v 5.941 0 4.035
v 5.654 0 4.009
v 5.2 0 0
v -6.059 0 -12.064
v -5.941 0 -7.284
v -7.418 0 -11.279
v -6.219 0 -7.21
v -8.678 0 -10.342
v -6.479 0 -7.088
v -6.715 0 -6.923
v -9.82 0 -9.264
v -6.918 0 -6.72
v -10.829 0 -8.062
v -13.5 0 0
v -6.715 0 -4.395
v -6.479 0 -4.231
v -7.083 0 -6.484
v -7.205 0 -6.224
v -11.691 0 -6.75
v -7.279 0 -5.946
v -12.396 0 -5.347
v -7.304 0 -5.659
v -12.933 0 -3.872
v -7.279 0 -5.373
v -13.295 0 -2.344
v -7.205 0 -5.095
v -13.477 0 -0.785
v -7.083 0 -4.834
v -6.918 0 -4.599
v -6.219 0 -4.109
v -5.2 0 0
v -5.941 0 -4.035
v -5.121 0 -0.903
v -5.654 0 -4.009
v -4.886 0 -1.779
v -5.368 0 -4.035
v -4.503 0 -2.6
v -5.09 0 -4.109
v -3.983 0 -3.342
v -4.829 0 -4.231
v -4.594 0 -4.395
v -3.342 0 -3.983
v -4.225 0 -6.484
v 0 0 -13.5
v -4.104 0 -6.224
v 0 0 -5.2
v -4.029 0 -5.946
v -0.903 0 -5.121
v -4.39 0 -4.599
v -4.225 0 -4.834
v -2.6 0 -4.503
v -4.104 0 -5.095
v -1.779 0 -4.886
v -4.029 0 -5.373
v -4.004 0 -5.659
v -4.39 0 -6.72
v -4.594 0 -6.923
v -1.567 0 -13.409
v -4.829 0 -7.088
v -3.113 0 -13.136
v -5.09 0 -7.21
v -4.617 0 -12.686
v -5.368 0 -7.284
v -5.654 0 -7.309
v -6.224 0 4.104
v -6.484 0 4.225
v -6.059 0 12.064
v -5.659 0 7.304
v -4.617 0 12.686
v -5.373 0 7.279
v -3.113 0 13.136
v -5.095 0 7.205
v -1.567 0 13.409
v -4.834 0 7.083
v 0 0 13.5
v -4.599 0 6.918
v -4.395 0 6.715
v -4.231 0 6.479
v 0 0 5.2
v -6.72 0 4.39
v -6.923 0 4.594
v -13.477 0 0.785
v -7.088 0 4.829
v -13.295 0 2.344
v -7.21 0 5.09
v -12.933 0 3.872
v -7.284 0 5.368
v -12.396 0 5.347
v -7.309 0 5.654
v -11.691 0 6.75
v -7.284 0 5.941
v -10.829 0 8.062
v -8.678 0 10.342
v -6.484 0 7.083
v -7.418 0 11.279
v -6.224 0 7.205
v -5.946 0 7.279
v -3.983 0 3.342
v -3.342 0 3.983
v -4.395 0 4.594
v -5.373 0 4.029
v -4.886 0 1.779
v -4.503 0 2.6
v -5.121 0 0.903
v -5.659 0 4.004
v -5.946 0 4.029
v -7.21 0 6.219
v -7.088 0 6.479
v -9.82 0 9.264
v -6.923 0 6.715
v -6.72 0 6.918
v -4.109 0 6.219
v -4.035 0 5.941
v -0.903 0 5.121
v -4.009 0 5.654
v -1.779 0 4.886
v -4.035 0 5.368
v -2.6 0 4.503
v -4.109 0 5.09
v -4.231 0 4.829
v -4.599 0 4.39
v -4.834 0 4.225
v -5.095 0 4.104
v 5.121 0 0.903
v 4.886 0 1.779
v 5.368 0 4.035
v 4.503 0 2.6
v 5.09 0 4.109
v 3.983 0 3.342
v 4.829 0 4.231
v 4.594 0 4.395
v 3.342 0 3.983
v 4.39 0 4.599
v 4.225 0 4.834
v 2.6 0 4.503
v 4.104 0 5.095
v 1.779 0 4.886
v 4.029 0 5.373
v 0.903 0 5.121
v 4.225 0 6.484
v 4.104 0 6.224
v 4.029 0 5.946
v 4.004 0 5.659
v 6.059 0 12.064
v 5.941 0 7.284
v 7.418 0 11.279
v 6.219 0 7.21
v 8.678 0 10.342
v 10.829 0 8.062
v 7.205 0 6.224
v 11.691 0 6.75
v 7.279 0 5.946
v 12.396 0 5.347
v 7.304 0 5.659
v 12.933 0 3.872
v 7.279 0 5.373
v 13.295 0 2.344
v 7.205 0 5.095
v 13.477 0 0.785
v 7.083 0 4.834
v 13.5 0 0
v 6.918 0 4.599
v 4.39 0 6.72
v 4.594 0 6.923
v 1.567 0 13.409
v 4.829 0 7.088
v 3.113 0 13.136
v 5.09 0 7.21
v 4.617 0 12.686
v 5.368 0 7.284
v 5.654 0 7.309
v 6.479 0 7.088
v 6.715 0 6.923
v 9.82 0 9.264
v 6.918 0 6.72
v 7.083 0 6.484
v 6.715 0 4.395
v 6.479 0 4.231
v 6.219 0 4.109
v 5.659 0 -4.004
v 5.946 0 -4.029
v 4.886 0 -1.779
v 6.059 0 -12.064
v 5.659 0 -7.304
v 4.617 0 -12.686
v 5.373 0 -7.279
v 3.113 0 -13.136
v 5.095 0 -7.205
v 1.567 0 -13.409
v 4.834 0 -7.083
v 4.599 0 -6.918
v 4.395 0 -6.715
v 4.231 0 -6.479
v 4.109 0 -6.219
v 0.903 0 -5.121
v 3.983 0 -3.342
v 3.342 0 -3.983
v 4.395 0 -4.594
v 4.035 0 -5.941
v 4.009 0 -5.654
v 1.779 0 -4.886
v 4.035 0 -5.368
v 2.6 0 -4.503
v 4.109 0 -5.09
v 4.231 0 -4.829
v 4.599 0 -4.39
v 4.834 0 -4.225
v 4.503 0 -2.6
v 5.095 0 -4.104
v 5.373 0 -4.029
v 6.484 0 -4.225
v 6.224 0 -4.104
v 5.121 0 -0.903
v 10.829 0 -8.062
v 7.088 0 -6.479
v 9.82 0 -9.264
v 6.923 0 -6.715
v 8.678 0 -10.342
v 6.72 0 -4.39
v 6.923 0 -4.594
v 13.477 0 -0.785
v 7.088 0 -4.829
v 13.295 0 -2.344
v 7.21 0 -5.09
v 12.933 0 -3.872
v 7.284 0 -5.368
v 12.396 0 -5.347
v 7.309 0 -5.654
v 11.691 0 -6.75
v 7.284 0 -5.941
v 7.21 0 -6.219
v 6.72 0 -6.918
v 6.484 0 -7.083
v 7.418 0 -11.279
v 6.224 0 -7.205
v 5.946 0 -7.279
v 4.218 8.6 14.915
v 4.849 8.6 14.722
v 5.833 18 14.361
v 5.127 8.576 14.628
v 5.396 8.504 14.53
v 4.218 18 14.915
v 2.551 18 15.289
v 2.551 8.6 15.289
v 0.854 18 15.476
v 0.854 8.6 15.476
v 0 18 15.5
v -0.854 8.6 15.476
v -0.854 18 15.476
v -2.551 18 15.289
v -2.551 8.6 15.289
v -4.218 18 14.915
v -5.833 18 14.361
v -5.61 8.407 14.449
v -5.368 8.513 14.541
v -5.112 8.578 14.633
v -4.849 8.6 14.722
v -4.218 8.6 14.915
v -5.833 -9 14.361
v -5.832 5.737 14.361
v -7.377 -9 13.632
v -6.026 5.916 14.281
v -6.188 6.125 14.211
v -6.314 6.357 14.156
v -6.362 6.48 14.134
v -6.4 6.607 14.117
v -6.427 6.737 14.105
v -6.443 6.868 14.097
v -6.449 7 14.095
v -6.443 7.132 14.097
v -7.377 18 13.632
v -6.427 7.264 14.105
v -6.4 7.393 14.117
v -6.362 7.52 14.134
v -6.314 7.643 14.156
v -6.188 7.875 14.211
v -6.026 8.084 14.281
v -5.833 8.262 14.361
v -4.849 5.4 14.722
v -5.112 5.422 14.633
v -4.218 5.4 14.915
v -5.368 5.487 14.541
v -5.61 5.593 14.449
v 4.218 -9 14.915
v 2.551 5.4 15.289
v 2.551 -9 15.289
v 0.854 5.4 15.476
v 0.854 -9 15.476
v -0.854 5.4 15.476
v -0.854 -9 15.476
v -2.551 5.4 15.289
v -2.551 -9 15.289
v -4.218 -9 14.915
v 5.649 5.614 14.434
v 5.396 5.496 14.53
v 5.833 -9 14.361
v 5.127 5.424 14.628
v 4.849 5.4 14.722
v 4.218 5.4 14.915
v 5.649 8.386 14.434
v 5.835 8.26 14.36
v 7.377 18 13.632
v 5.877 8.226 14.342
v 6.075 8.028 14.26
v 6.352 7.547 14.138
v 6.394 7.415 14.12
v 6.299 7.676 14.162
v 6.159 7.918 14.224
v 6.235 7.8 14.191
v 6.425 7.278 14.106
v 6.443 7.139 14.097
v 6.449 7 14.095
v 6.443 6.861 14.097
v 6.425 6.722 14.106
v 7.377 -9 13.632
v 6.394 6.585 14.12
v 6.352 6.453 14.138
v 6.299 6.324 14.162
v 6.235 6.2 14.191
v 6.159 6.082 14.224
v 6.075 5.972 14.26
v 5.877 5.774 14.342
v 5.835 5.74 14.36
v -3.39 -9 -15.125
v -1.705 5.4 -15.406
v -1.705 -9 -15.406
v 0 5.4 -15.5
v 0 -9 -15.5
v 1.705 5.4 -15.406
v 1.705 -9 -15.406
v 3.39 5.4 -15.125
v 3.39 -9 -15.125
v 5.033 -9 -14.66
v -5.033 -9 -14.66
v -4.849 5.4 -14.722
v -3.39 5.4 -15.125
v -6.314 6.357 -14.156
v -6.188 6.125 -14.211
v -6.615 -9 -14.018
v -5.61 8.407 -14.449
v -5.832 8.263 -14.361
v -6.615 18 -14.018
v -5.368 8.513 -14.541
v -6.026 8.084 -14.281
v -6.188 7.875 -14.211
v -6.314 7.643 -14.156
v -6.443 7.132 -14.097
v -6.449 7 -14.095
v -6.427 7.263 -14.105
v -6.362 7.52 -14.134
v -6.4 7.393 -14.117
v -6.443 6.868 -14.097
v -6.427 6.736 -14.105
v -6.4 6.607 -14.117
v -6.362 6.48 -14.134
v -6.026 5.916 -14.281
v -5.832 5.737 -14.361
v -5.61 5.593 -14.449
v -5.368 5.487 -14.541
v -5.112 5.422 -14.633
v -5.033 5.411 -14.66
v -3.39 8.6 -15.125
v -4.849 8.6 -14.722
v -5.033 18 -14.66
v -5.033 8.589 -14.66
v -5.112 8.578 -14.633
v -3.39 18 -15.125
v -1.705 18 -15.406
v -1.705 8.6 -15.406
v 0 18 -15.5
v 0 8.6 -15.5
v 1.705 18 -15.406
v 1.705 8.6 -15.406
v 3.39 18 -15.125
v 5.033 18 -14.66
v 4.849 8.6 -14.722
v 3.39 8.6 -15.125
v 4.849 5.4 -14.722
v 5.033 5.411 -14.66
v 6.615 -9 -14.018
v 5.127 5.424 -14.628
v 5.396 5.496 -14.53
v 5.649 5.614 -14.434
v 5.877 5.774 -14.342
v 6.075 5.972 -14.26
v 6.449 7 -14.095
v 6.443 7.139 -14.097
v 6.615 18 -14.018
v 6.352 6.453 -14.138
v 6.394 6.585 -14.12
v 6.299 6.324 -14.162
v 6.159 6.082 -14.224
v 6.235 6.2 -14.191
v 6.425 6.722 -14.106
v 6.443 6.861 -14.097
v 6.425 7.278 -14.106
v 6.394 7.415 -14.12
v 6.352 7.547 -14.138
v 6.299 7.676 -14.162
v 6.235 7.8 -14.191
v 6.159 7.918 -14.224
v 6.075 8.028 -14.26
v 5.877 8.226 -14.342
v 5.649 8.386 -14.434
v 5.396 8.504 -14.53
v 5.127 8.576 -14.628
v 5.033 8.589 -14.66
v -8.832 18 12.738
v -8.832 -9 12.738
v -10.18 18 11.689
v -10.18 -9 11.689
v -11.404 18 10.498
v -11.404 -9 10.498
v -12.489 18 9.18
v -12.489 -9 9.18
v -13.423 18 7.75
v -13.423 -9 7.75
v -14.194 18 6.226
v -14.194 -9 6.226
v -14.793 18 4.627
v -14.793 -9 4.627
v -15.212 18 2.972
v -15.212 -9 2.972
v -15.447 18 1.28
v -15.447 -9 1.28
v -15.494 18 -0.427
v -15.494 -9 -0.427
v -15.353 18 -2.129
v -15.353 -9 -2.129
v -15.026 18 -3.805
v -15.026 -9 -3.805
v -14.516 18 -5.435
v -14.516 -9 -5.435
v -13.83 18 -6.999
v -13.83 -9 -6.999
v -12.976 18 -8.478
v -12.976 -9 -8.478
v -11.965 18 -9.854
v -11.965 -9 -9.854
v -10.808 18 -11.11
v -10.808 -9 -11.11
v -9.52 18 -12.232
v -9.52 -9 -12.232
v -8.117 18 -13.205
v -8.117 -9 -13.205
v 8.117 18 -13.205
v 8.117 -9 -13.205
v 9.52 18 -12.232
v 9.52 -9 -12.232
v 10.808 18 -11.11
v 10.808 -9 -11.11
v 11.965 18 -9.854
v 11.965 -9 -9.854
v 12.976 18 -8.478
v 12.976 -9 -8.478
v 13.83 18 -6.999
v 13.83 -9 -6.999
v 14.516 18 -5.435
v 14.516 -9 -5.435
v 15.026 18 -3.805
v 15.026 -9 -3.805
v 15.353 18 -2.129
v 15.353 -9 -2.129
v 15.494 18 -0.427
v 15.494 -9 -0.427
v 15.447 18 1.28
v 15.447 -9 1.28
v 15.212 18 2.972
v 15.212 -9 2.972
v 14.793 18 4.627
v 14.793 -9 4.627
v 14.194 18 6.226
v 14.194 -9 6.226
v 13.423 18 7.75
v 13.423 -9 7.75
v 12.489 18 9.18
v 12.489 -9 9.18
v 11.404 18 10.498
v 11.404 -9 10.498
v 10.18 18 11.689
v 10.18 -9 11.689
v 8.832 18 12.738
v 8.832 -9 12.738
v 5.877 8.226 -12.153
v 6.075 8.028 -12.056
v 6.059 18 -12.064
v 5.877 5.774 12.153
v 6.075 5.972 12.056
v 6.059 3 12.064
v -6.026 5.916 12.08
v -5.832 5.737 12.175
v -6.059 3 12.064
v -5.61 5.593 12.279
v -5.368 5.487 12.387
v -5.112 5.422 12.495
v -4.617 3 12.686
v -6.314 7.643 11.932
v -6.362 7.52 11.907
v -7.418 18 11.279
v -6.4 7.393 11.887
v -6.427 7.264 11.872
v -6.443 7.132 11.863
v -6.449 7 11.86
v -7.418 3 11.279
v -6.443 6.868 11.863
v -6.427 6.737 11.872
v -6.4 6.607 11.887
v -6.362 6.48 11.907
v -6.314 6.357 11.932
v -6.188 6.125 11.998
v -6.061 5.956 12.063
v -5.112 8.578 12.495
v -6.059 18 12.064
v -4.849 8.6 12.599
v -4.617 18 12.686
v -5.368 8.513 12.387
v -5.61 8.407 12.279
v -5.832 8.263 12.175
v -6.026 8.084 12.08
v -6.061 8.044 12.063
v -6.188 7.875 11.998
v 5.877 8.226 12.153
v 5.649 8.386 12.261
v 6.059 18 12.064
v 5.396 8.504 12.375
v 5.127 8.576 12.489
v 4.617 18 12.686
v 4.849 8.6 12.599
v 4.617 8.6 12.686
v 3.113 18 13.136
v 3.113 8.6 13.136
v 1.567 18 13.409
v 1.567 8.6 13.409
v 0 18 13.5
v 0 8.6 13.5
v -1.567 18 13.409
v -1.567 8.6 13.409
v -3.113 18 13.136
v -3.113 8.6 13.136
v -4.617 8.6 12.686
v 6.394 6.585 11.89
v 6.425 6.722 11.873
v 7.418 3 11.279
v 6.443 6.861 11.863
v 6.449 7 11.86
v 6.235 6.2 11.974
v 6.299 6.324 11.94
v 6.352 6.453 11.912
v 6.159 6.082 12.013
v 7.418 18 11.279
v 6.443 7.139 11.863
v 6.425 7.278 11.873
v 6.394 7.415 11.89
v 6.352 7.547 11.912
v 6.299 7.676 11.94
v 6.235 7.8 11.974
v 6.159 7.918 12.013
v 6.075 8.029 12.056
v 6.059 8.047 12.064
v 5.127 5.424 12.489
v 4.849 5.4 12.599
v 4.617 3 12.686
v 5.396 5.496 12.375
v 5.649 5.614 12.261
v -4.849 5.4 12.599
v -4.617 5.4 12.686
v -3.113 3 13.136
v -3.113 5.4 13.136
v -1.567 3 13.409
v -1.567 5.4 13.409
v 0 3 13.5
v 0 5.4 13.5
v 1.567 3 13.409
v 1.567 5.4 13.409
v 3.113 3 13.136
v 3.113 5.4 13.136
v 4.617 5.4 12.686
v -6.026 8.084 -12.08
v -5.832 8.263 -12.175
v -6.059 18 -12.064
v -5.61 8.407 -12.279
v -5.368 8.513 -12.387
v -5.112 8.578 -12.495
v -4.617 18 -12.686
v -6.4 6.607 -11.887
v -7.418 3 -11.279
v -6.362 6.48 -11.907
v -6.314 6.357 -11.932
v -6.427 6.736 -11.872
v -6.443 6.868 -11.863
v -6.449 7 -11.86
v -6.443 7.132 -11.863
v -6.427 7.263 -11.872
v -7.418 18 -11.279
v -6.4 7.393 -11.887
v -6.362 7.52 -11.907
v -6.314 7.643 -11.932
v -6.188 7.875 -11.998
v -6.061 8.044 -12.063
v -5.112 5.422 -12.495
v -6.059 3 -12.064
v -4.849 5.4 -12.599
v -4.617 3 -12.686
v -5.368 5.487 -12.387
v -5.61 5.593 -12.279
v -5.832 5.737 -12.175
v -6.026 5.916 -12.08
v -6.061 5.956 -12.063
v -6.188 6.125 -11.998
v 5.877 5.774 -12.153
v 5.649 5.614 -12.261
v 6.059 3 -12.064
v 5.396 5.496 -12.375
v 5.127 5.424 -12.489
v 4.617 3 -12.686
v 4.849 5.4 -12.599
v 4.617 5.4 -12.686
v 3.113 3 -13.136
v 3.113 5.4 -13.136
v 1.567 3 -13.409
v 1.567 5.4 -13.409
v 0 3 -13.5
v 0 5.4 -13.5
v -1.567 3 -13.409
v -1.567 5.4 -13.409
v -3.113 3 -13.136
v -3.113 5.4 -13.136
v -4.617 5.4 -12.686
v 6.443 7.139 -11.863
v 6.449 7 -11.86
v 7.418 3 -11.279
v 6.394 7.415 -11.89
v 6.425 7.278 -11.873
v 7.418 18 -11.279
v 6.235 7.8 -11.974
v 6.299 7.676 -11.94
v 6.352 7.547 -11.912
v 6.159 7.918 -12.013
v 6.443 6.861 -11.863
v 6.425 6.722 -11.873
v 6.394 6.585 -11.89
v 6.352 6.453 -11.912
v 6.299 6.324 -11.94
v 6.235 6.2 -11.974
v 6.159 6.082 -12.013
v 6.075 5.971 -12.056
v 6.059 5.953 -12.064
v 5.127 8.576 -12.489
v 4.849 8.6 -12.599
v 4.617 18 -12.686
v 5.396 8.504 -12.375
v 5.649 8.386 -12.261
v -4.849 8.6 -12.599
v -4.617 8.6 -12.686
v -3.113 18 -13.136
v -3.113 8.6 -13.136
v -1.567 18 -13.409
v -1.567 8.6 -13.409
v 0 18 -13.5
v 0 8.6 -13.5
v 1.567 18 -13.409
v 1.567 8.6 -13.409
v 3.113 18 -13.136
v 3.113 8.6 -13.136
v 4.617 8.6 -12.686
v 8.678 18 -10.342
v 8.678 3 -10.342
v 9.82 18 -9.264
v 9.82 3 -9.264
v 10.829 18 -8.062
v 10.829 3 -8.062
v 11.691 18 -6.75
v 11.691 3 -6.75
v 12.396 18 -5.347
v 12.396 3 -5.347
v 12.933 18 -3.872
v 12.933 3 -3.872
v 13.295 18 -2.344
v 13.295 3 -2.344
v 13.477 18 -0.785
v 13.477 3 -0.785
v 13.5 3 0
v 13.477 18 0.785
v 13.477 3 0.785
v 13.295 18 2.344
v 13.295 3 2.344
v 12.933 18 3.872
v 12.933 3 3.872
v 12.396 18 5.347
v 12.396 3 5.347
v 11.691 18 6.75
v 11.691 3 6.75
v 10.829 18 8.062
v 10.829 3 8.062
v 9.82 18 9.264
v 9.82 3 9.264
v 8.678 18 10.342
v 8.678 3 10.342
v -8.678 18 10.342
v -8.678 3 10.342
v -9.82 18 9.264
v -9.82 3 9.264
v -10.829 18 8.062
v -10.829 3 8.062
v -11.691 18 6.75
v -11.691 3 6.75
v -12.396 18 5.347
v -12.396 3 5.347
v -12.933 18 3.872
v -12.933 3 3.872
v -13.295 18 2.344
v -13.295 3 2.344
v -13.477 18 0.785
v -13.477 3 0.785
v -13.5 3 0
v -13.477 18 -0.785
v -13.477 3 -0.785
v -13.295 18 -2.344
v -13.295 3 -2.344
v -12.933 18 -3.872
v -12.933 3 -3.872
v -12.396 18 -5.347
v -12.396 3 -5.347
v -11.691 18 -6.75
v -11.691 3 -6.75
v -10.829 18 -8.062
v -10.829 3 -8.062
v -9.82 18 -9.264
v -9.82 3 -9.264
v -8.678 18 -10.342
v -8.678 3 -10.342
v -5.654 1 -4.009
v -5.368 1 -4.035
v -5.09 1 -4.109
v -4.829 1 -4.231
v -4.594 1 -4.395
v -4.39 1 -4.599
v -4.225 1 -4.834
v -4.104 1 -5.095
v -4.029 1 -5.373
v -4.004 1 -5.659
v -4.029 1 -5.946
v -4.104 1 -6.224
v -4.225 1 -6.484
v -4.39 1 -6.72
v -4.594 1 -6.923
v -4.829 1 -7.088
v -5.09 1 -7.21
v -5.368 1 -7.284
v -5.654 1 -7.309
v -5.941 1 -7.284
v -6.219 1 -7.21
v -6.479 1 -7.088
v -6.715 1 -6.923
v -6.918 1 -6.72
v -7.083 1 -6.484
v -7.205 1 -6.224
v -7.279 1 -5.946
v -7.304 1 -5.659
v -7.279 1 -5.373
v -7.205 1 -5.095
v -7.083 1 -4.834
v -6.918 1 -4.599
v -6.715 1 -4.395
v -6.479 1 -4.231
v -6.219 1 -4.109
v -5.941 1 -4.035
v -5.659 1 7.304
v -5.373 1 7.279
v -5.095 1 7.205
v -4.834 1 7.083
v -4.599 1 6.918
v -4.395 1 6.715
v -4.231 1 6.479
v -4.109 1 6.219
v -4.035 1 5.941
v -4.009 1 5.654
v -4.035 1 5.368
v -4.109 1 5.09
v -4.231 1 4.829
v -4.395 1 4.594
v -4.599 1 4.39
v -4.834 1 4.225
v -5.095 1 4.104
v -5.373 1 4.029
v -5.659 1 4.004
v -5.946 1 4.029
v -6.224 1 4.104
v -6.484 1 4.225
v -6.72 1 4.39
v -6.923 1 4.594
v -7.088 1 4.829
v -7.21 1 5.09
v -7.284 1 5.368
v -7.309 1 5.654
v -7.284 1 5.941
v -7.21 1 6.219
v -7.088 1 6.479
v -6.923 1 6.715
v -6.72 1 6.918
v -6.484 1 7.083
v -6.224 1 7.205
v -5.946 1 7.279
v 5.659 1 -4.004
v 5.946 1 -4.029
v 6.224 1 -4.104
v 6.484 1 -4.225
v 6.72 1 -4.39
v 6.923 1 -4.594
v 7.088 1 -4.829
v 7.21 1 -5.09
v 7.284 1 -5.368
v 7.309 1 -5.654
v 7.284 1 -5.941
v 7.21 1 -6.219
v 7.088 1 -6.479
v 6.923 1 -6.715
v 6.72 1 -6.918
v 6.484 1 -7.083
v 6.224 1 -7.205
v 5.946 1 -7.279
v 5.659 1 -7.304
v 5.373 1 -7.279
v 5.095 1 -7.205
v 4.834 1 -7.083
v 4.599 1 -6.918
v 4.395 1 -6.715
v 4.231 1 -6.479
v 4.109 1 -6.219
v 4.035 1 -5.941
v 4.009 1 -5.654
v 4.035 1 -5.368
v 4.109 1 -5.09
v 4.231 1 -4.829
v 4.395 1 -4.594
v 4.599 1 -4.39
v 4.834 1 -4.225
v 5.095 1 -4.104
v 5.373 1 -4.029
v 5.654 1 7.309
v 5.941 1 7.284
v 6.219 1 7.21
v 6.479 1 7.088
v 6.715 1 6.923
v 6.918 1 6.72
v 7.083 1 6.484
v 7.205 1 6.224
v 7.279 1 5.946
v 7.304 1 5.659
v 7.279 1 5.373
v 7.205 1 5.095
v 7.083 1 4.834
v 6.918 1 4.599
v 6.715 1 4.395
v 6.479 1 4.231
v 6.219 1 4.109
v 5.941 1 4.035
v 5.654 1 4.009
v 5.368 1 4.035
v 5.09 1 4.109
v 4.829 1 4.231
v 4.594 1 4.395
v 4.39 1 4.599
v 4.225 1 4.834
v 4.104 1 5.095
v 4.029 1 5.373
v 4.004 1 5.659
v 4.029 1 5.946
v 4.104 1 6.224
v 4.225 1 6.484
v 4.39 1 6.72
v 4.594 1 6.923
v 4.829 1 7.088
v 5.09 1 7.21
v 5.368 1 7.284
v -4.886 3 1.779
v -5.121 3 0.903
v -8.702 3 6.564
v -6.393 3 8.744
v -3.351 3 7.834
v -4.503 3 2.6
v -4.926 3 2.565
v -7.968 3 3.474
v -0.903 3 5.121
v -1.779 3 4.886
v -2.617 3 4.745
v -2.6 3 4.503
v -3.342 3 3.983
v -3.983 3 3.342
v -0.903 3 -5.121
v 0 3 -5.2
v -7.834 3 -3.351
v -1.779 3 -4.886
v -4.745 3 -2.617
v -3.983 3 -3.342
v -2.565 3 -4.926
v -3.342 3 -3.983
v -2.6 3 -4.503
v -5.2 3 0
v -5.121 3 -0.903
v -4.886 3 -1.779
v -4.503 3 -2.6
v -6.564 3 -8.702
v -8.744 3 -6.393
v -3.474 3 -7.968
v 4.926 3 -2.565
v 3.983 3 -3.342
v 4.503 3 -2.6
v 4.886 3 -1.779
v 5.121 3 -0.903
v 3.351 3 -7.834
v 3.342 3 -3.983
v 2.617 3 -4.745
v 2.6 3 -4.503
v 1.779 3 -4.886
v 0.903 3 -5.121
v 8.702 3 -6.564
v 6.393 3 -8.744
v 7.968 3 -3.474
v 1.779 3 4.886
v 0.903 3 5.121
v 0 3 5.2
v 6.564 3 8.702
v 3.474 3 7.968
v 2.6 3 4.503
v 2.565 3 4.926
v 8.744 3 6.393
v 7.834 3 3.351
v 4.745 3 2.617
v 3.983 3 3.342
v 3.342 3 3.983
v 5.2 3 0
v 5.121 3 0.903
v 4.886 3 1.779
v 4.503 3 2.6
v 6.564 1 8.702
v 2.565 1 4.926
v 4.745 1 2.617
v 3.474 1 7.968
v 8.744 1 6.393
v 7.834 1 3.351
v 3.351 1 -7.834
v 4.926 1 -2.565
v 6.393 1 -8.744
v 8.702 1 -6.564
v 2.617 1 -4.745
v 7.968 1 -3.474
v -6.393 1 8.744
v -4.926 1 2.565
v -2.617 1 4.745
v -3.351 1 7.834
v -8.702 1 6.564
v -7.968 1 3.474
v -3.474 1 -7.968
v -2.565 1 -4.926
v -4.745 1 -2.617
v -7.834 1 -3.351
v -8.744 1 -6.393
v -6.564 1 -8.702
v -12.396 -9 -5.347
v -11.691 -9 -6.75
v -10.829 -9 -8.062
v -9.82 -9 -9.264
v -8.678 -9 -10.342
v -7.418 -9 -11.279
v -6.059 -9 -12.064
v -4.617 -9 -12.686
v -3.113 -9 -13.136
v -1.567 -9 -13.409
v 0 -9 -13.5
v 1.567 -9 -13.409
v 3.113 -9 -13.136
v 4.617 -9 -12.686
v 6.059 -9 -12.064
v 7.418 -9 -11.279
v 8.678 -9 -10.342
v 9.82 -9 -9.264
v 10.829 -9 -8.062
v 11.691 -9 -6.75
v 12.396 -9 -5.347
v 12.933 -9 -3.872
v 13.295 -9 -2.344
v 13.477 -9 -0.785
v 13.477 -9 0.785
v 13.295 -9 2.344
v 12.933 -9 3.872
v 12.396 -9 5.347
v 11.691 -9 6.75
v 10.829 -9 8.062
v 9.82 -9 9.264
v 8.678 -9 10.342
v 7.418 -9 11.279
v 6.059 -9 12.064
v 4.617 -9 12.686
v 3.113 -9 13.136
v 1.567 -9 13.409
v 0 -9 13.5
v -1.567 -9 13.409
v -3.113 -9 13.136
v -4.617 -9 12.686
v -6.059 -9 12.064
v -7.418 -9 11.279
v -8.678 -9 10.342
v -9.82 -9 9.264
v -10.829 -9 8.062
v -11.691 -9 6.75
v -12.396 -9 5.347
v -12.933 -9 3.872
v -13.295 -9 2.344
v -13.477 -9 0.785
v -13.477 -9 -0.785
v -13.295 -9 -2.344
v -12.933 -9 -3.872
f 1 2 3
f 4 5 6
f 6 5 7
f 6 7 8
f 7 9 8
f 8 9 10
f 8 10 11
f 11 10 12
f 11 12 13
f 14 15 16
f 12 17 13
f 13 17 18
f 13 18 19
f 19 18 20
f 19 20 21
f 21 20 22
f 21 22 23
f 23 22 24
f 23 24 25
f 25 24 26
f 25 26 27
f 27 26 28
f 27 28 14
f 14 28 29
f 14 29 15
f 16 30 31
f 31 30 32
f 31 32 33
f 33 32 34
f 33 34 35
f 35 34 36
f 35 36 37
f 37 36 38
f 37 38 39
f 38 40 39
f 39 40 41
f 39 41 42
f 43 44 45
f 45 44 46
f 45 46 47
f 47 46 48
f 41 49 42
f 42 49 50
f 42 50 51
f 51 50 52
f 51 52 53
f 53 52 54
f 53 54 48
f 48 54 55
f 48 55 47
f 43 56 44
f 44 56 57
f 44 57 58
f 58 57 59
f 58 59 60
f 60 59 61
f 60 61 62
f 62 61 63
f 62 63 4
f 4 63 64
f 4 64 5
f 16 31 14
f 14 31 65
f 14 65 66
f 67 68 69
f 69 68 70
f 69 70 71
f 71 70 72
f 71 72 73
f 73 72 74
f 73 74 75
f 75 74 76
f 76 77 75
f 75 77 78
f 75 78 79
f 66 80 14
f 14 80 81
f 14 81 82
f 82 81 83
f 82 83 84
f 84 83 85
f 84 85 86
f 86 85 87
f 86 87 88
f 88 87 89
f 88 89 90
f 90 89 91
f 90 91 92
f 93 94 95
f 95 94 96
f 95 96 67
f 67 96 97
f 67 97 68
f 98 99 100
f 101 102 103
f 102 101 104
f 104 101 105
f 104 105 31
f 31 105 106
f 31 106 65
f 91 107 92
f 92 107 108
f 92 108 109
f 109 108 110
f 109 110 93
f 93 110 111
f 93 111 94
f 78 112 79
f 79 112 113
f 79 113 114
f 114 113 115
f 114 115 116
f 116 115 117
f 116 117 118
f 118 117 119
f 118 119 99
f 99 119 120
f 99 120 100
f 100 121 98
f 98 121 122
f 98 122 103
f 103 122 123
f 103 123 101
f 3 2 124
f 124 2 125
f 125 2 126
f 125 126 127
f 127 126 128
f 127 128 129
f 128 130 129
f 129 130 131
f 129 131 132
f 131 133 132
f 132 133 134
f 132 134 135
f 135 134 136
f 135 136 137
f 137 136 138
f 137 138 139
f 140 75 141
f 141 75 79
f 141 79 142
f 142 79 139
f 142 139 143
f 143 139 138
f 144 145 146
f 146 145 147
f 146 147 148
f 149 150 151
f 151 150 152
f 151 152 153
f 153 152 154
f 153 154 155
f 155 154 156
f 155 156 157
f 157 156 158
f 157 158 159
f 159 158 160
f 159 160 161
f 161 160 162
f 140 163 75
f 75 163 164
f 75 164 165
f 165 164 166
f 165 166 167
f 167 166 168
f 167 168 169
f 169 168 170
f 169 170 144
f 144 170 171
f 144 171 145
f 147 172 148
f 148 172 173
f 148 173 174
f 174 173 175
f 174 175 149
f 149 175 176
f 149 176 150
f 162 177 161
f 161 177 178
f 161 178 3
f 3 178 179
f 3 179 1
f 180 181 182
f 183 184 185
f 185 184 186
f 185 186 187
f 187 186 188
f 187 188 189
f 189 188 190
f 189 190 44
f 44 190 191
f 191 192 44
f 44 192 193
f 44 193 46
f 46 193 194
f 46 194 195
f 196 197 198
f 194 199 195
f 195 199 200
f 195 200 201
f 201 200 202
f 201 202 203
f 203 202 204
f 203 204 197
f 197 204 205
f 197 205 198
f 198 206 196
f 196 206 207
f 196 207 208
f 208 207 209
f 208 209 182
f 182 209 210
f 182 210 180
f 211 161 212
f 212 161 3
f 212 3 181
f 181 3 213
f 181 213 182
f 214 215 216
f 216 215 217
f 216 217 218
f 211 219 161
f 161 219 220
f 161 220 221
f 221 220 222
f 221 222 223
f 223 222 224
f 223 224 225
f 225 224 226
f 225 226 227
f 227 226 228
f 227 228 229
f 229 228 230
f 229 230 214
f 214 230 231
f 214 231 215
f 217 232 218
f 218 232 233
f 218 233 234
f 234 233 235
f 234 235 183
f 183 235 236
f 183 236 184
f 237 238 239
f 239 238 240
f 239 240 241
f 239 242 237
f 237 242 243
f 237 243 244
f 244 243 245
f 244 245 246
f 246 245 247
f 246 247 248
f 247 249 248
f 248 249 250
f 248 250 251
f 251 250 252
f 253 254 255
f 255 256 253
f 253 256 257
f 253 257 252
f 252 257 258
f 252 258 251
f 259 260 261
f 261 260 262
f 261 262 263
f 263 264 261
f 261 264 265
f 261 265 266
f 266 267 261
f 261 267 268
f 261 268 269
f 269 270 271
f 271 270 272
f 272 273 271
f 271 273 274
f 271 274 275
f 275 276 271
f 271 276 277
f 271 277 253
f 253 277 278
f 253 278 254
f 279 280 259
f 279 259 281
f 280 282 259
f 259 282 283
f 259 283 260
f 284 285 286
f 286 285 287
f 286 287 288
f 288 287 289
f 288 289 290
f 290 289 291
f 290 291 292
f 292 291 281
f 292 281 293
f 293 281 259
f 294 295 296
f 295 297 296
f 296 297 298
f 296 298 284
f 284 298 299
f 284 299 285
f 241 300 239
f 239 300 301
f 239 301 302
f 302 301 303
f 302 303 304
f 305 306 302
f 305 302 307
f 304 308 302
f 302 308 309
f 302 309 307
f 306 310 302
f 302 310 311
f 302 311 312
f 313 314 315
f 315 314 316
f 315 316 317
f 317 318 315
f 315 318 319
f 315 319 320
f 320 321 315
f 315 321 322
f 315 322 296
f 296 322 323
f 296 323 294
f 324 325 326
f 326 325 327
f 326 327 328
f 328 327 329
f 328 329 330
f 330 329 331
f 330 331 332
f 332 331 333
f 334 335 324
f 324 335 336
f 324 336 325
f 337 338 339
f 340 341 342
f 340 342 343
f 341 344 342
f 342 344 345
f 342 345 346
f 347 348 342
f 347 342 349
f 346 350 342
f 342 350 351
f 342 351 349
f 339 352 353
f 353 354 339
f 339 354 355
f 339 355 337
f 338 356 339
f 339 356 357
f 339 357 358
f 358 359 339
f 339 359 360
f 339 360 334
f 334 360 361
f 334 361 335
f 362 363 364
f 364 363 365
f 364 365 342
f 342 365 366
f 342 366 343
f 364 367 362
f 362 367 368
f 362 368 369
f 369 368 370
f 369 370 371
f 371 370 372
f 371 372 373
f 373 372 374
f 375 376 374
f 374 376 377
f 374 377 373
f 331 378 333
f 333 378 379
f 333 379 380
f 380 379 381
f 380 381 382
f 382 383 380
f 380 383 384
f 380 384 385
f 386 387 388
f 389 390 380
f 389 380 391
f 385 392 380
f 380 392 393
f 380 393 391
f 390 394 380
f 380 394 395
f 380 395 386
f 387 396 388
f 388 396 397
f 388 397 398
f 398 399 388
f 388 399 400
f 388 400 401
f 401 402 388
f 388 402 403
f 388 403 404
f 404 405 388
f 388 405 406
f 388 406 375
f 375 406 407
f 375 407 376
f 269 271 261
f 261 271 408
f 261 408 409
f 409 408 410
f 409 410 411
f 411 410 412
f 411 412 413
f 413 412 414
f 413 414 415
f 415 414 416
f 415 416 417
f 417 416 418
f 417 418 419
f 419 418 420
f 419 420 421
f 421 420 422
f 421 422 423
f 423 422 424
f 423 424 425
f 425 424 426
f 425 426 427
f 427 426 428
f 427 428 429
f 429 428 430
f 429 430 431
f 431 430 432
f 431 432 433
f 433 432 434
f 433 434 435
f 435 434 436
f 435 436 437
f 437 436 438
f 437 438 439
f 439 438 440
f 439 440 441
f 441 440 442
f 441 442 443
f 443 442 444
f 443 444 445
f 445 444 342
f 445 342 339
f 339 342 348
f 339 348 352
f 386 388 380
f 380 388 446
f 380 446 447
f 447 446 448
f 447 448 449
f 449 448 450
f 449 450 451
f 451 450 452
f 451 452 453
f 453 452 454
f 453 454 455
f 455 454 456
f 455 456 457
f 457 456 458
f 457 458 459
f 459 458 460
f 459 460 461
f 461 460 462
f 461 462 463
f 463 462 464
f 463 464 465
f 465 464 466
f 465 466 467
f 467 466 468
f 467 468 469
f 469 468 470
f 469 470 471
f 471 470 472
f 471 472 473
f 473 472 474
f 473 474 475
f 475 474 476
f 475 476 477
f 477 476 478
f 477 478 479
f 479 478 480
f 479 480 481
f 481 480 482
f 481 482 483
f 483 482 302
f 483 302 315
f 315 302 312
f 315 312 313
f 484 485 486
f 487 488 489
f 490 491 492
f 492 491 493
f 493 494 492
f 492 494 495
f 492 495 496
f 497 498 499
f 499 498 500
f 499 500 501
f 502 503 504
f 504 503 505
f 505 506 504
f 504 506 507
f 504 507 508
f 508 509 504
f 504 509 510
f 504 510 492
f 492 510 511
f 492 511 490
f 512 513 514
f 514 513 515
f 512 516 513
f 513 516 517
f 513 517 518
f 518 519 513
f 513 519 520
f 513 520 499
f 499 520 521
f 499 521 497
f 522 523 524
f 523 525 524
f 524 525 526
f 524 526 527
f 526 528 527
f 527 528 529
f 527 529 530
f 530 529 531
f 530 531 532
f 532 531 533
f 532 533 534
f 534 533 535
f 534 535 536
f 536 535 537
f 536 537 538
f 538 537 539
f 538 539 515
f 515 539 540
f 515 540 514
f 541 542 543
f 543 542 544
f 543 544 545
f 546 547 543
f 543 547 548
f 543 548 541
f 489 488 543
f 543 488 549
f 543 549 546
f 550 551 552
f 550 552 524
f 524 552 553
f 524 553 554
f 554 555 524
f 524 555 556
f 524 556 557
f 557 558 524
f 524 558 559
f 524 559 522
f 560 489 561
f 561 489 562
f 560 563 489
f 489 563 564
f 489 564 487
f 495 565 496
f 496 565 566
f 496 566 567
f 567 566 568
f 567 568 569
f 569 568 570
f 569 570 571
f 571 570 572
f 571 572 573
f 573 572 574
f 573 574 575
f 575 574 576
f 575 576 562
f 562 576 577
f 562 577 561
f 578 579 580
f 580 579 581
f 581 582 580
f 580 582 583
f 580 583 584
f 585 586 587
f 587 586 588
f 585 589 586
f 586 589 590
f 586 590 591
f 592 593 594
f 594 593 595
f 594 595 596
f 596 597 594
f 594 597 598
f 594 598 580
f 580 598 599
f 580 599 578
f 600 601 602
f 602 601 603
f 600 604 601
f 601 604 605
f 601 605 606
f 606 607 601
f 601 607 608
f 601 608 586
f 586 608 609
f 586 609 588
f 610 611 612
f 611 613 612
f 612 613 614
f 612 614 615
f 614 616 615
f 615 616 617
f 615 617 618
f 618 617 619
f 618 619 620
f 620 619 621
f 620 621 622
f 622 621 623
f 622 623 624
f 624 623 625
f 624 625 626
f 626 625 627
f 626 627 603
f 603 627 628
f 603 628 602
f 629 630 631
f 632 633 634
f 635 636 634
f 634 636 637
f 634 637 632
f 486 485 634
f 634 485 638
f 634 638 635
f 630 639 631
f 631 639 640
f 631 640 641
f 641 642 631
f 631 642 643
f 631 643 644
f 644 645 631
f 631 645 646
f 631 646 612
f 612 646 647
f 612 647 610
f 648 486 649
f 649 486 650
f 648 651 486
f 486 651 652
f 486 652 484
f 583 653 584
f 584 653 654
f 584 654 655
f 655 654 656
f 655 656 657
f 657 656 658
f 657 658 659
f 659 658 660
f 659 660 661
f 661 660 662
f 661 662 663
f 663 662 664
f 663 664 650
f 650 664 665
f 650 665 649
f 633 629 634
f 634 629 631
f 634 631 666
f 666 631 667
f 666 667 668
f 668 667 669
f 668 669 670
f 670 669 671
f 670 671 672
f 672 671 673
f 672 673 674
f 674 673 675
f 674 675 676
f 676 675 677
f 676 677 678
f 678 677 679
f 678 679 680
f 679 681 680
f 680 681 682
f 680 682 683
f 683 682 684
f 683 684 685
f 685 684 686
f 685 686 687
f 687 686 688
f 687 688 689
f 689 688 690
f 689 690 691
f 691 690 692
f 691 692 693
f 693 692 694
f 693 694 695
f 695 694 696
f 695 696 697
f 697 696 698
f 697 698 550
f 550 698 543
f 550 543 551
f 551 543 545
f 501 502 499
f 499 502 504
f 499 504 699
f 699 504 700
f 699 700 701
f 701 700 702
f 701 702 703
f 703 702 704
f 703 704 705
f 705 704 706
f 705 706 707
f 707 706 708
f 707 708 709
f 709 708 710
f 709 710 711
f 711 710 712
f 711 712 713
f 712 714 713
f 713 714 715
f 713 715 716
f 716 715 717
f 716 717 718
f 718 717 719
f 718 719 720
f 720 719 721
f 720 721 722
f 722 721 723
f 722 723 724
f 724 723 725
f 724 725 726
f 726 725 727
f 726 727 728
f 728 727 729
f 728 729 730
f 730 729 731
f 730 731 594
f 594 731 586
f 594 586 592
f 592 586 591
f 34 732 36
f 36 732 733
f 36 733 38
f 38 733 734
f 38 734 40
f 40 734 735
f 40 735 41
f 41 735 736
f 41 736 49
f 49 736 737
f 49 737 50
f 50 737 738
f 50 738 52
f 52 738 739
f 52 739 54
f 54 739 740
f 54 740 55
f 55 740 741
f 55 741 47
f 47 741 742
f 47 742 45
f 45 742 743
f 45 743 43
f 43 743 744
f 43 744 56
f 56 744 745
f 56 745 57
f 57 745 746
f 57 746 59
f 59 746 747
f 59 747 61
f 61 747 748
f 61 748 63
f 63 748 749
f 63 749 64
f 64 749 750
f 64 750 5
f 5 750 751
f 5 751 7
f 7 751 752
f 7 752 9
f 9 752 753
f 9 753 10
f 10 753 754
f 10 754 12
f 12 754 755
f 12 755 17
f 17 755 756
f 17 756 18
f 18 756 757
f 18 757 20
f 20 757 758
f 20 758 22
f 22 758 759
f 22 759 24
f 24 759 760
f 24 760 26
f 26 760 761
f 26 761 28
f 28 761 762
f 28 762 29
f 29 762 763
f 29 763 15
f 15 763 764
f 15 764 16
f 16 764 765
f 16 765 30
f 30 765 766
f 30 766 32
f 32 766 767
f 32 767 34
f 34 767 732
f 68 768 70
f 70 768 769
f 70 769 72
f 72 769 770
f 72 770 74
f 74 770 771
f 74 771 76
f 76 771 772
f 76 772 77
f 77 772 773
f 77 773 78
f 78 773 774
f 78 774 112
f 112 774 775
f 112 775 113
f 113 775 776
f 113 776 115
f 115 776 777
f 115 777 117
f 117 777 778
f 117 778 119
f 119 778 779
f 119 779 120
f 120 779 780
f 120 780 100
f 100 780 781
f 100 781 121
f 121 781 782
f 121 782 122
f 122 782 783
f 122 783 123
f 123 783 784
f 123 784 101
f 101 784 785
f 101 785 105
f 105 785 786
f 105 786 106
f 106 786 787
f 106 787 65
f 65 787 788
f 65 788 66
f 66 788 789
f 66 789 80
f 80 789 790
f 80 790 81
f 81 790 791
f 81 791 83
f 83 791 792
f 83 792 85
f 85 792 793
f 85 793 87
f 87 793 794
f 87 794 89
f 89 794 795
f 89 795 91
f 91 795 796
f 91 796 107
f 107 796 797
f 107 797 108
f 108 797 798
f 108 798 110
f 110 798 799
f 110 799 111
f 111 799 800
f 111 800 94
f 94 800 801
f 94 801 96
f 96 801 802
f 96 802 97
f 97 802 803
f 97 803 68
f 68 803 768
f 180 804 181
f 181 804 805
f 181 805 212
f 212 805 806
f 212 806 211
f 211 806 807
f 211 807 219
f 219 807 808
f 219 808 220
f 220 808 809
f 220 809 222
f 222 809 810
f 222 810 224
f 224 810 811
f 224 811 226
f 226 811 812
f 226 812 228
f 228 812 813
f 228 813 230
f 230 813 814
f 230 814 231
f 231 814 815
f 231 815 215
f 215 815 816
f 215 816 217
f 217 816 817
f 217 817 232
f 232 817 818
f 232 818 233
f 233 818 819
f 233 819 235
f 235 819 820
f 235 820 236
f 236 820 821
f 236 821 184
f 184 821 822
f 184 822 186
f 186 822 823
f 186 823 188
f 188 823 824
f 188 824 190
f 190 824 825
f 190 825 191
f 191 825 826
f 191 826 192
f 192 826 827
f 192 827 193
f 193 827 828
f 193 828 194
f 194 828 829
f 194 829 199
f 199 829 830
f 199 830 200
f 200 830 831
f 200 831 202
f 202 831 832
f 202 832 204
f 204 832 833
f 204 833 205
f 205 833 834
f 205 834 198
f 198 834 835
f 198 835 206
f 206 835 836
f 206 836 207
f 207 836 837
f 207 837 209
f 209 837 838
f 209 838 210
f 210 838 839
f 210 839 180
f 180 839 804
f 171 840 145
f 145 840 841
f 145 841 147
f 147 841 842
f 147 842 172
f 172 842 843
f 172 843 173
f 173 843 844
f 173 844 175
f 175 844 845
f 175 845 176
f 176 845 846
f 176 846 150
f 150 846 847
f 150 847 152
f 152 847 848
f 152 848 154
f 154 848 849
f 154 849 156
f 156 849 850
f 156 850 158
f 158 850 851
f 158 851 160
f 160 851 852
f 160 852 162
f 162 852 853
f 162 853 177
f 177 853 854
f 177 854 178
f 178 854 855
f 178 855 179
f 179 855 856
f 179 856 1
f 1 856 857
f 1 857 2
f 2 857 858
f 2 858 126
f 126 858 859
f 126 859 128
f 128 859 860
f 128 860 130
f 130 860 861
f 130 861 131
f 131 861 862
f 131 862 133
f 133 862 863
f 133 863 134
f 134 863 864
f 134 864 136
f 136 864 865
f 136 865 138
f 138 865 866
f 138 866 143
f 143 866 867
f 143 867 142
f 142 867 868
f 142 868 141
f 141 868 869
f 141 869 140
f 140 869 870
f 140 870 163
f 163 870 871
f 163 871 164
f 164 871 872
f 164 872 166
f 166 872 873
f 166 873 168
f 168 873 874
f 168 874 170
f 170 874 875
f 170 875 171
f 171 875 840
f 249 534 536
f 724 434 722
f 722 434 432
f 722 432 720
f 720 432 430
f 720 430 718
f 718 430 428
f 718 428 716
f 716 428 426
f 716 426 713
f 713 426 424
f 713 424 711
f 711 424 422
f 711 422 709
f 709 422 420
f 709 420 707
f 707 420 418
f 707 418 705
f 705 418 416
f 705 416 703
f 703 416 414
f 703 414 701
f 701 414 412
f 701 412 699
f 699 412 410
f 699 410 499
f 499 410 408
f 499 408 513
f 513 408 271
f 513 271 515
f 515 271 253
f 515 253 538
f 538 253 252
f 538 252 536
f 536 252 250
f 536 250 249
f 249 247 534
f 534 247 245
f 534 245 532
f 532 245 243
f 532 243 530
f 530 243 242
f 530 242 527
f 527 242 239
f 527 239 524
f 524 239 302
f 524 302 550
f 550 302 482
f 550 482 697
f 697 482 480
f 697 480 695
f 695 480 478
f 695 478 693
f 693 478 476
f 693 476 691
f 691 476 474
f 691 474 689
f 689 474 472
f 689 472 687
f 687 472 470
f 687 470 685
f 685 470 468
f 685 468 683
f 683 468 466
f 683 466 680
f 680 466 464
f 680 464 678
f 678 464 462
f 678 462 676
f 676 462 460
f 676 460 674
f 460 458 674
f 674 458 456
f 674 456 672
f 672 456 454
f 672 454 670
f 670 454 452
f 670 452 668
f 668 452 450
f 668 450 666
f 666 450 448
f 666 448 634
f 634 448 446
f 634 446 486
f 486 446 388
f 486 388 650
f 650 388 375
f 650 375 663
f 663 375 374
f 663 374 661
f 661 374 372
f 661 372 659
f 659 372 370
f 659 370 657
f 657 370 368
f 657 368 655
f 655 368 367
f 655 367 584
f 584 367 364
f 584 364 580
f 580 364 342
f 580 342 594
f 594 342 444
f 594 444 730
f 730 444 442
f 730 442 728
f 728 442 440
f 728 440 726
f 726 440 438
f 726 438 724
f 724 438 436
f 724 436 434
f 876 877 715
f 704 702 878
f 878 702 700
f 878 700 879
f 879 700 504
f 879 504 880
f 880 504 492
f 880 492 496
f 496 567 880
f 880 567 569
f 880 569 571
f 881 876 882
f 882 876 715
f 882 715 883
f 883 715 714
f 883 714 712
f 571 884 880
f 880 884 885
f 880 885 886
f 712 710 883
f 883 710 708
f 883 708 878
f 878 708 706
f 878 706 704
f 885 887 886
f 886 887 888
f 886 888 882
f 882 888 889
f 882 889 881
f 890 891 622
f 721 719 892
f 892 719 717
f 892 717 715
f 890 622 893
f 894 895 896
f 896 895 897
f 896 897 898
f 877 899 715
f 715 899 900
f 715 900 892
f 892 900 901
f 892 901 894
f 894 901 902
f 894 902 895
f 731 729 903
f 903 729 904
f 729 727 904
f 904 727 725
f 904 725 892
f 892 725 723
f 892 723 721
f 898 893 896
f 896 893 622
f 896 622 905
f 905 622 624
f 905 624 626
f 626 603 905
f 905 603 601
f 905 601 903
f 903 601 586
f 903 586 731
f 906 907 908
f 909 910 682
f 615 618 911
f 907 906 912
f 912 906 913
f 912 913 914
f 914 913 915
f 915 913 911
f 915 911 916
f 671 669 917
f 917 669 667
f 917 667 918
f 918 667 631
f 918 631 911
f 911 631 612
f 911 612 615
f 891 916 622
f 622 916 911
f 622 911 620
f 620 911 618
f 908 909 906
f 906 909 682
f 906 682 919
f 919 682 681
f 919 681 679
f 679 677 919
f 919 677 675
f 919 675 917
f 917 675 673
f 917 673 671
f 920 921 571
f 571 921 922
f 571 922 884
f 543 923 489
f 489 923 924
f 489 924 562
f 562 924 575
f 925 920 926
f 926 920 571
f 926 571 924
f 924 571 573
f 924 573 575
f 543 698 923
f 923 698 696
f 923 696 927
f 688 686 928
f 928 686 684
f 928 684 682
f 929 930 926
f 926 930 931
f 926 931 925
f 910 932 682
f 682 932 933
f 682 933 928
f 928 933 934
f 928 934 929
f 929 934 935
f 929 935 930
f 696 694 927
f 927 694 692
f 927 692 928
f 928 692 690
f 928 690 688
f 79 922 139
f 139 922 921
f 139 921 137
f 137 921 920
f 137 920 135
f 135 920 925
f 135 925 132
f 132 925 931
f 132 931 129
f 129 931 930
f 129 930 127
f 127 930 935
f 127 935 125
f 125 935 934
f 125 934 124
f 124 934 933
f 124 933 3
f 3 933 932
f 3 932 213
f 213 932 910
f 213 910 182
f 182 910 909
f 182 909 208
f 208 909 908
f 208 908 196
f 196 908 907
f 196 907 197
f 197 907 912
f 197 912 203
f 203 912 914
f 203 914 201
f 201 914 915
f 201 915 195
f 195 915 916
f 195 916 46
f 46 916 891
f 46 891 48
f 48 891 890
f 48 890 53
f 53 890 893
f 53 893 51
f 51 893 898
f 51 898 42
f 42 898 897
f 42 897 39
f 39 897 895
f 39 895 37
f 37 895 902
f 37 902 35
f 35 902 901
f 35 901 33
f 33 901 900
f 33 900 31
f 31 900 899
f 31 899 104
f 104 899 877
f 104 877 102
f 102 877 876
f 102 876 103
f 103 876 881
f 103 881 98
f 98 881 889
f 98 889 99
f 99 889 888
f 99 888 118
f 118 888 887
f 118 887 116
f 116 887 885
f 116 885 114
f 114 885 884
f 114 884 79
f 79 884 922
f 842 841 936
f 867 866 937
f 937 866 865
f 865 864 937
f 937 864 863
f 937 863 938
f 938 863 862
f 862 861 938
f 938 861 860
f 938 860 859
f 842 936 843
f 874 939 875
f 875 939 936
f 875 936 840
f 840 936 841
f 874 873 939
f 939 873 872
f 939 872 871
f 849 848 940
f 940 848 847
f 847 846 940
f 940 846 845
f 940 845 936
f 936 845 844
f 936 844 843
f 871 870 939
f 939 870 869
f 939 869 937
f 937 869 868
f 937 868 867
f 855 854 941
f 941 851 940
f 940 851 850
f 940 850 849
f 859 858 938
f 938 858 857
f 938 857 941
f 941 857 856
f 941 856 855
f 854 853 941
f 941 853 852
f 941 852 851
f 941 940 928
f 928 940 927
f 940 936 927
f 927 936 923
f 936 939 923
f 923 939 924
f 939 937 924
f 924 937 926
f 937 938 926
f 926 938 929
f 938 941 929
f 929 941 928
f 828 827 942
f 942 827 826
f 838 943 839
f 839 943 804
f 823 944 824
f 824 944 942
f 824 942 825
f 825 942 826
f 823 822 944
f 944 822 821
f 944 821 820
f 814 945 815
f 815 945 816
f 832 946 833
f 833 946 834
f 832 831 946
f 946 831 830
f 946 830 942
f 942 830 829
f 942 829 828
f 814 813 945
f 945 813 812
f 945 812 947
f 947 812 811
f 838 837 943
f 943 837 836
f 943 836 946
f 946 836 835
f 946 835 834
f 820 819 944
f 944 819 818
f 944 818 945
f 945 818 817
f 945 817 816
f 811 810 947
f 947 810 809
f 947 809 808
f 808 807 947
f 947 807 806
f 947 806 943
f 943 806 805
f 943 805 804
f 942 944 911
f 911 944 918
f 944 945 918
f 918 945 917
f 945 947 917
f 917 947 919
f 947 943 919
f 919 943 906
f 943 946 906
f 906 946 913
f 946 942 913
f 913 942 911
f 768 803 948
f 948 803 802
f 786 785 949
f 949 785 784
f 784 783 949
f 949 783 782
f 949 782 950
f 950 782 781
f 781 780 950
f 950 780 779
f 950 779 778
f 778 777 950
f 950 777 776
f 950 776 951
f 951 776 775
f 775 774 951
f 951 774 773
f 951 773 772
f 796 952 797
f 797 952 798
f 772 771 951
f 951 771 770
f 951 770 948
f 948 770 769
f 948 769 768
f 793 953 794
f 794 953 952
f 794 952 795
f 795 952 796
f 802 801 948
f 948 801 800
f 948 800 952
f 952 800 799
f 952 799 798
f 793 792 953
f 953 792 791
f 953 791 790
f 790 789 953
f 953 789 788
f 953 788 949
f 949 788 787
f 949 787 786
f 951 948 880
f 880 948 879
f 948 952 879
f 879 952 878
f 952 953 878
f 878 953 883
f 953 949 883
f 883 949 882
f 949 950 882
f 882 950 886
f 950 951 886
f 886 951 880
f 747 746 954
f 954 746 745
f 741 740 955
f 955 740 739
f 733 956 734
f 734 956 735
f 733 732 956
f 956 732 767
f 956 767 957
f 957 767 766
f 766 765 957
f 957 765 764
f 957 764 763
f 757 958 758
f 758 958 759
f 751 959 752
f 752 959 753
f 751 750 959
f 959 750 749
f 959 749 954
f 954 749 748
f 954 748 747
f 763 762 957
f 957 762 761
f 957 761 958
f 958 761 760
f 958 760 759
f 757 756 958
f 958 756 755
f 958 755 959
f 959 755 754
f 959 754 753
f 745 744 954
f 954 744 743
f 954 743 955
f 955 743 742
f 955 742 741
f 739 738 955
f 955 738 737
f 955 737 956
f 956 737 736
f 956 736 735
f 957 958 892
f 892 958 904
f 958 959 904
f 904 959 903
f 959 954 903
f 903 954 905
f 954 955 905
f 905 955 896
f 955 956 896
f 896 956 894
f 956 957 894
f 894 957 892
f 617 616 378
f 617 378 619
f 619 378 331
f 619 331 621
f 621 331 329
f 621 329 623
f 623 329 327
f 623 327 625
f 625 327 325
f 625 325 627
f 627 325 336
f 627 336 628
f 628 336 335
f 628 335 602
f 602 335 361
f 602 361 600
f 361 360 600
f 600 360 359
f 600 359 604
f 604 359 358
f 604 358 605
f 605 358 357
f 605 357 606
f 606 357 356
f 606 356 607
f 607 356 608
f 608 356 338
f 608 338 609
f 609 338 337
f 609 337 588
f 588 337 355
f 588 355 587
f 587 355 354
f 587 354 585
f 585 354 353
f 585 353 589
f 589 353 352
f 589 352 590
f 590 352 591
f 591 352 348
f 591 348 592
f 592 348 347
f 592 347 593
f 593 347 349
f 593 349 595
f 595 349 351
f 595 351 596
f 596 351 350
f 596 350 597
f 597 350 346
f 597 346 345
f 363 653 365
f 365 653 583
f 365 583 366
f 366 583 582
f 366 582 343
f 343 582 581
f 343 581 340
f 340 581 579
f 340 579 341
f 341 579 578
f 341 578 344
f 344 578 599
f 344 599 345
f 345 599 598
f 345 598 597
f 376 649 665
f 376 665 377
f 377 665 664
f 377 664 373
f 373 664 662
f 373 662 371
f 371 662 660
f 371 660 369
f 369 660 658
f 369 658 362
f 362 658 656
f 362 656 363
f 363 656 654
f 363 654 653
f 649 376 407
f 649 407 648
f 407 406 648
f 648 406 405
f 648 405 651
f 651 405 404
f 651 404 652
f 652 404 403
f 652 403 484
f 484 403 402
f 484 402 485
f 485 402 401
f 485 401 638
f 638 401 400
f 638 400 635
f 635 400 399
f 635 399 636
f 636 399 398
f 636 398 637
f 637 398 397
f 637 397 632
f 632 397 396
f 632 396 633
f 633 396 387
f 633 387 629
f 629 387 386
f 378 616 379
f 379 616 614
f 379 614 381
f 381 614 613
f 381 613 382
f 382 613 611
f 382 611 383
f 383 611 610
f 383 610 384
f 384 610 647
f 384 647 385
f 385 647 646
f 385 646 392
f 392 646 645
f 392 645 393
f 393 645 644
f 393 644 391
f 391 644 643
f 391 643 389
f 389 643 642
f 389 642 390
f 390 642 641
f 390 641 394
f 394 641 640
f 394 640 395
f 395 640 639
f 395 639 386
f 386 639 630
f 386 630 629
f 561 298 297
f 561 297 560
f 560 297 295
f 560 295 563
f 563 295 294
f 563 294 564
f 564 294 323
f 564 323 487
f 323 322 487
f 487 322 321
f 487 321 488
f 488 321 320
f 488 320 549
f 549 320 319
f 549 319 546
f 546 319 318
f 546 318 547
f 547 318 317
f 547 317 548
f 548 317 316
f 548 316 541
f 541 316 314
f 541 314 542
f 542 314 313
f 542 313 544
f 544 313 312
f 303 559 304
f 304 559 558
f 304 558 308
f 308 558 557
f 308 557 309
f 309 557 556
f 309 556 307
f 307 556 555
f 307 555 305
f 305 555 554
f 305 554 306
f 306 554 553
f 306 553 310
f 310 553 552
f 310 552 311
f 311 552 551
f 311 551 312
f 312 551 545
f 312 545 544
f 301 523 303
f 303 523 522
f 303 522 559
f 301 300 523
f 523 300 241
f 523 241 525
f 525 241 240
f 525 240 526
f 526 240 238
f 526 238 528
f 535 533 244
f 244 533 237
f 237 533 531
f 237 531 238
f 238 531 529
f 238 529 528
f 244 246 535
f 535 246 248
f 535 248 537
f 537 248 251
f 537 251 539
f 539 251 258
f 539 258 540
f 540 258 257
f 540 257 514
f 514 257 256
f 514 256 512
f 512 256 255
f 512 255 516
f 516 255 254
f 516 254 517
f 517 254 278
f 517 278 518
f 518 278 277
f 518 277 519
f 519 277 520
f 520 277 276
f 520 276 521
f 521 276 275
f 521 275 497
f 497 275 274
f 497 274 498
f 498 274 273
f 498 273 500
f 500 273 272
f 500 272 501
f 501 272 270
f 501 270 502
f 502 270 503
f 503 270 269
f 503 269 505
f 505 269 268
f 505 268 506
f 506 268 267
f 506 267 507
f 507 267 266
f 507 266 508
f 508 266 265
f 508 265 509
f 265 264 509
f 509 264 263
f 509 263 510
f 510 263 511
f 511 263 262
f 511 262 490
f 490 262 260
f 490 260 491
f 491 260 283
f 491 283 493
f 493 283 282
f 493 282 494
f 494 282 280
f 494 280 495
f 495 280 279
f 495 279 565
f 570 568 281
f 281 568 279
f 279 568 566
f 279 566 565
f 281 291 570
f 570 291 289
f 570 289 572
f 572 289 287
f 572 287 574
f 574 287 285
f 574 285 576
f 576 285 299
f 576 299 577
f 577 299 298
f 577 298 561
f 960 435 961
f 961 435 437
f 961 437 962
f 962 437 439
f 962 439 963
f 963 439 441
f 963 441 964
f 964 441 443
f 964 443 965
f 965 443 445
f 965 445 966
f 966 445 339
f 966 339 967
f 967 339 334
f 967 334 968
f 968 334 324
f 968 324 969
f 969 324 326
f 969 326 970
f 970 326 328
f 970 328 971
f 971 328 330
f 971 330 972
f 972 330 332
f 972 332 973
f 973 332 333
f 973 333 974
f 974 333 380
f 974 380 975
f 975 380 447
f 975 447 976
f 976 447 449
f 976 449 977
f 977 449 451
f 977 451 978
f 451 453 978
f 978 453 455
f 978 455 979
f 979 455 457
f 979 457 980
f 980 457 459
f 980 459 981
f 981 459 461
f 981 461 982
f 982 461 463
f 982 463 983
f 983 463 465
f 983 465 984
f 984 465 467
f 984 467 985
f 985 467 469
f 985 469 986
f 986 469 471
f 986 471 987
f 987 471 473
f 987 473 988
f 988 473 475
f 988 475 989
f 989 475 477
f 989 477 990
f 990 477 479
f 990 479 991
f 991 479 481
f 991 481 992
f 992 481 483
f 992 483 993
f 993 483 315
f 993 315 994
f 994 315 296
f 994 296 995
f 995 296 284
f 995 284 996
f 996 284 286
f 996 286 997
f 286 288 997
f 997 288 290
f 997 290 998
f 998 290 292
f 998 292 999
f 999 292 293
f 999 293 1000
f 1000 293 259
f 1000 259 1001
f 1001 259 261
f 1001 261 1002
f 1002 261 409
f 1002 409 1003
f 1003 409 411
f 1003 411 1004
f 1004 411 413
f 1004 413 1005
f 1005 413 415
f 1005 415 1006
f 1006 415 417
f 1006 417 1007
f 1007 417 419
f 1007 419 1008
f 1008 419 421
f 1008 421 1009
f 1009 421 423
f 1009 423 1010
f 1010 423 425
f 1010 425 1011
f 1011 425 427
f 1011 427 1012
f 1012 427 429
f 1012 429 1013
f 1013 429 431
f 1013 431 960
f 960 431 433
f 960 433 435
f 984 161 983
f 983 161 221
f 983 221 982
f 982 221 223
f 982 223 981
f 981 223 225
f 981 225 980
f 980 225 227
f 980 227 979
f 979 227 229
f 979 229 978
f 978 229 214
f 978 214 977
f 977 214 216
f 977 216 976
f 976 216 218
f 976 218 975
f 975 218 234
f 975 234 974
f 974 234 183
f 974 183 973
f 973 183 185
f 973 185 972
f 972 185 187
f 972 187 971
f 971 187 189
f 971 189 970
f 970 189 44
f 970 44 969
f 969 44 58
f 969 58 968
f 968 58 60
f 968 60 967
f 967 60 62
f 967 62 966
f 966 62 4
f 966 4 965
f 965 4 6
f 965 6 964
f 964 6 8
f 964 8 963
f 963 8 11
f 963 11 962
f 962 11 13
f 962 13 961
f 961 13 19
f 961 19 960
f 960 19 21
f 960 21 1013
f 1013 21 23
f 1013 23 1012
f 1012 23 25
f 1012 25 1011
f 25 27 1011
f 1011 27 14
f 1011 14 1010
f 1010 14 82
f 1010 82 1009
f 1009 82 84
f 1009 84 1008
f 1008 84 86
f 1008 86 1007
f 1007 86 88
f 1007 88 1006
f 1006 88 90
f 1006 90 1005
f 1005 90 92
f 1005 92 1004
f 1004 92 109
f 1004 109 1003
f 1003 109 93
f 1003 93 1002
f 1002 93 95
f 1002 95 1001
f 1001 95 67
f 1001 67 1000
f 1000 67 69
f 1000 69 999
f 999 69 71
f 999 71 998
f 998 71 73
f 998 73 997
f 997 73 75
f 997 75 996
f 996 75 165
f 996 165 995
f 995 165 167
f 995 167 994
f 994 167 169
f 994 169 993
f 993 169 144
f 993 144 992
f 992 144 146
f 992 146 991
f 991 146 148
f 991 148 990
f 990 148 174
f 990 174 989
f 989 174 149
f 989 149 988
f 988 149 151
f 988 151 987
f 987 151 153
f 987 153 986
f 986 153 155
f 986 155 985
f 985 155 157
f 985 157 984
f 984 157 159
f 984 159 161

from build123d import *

# Parameters (mm, degrees)
SKETCH1_R               = 15.5
SKETCH1_R_2             = 13.5
BOSS_EXTRUDE1_DEPTH     = 18
SKETCH1_3_R             = 13.5
BOSS_EXTRUDE2_DEPTH     = 3
SKETCH2_R               = 5.2
SKETCH2_R_2             = 1.65
CUT_EXTRUDE4_DEPTH      = 41
CUT_EXTRUDE5_DEPTH      = 2
CUT_EXTRUDE6_DEPTH      = 20
CUT_EXTRUDE6_DEPTH_BACK = 16
BOSS_EXTRUDE3_START     = 9
SKETCH5_R               = 15.5
SKETCH5_R_2             = 13.5
BOSS_EXTRUDE3_DEPTH     = 9


with BuildPart() as part:
    # Sketch1 → Boss-Extrude1 (new body)
    with BuildSketch(Plane(origin=(0, 0, 0), x_dir=(1, 0, 0), z_dir=(0, 1, 0))):
        Circle(SKETCH1_R)
        Circle(SKETCH1_R_2, mode=Mode.SUBTRACT)
    extrude(amount=BOSS_EXTRUDE1_DEPTH)

    # Sketch1<3> → Boss-Extrude2 (add)
    with BuildSketch(Plane(origin=(0, 0, 0), x_dir=(1, 0, 0), z_dir=(0, 1, 0))):
        Circle(SKETCH1_3_R)
    extrude(amount=BOSS_EXTRUDE2_DEPTH)

    # Sketch2 → Cut-Extrude4 (cut)
    with BuildSketch(Plane(origin=(0, 3, 0), x_dir=(1, 0, 0), z_dir=(0, 1, 0))):
        Circle(SKETCH2_R)
        with Locations((-5.654252066, 5.659455236)):
            Circle(SKETCH2_R_2)
        with Locations((5.659455236, 5.654252066)):
            Circle(SKETCH2_R_2)
        with Locations((5.654252066, -5.659455236)):
            Circle(SKETCH2_R_2)
        with Locations((-5.659455236, -5.654252066)):
            Circle(SKETCH2_R_2)
    extrude(amount=-CUT_EXTRUDE4_DEPTH, mode=Mode.SUBTRACT)

    # Sketch3 → Cut-Extrude5 (cut)
    with BuildSketch(Plane(origin=(0, 3, 0), x_dir=(1, 0, 0), z_dir=(0, 1, 0))):
        Polygon((-7.834437444, 3.350748878), (-4.744946398, 2.617006135), (-2.56476102, 4.925712494), (-3.474066688, 7.968161595), (-6.563557734, 8.701904338), (-8.743743112, 6.393197979), align=None)
        Polygon((3.350748878, 7.834437444), (2.617006135, 4.744946398), (4.925712494, 2.56476102), (7.968161595, 3.474066688), (8.701904338, 6.563557734), (6.393197979, 8.743743112), align=None)
        Polygon((7.834437444, -3.350748878), (4.744946398, -2.617006135), (2.56476102, -4.925712494), (3.474066688, -7.968161595), (6.563557734, -8.701904338), (8.743743112, -6.393197979), align=None)
        Polygon((-3.350748878, -7.834437444), (-2.617006135, -4.744946398), (-4.925712494, -2.56476102), (-7.968161595, -3.474066688), (-8.701904338, -6.563557734), (-6.393197979, -8.743743112), align=None)
    extrude(amount=-CUT_EXTRUDE5_DEPTH, mode=Mode.SUBTRACT)

    # Sketch4 → Cut-Extrude6 (cut, two sides: drawn at the far end of the back side and taken through both)
    with BuildSketch(Plane.XY.offset(-CUT_EXTRUDE6_DEPTH_BACK)):
        with BuildLine():
            Line((4.848949803, 5.4), (-4.848949803, 5.4))
            ThreePointArc((-4.848949803, 5.4), (-6.448949803, 7), (-4.848949803, 8.6))
            Line((-4.848949803, 8.6), (4.848949803, 8.6))
            ThreePointArc((4.848949803, 8.6), (6.448949803, 7), (4.848949803, 5.4))
        make_face()
    extrude(amount=CUT_EXTRUDE6_DEPTH + CUT_EXTRUDE6_DEPTH_BACK, mode=Mode.SUBTRACT)

    # Sketch5 → Boss-Extrude3 (add)
    with BuildSketch(Plane.XZ.offset(BOSS_EXTRUDE3_START)):
        Circle(SKETCH5_R)
        Circle(SKETCH5_R_2, mode=Mode.SUBTRACT)
    extrude(amount=-BOSS_EXTRUDE3_DEPTH)


solid = part.part
